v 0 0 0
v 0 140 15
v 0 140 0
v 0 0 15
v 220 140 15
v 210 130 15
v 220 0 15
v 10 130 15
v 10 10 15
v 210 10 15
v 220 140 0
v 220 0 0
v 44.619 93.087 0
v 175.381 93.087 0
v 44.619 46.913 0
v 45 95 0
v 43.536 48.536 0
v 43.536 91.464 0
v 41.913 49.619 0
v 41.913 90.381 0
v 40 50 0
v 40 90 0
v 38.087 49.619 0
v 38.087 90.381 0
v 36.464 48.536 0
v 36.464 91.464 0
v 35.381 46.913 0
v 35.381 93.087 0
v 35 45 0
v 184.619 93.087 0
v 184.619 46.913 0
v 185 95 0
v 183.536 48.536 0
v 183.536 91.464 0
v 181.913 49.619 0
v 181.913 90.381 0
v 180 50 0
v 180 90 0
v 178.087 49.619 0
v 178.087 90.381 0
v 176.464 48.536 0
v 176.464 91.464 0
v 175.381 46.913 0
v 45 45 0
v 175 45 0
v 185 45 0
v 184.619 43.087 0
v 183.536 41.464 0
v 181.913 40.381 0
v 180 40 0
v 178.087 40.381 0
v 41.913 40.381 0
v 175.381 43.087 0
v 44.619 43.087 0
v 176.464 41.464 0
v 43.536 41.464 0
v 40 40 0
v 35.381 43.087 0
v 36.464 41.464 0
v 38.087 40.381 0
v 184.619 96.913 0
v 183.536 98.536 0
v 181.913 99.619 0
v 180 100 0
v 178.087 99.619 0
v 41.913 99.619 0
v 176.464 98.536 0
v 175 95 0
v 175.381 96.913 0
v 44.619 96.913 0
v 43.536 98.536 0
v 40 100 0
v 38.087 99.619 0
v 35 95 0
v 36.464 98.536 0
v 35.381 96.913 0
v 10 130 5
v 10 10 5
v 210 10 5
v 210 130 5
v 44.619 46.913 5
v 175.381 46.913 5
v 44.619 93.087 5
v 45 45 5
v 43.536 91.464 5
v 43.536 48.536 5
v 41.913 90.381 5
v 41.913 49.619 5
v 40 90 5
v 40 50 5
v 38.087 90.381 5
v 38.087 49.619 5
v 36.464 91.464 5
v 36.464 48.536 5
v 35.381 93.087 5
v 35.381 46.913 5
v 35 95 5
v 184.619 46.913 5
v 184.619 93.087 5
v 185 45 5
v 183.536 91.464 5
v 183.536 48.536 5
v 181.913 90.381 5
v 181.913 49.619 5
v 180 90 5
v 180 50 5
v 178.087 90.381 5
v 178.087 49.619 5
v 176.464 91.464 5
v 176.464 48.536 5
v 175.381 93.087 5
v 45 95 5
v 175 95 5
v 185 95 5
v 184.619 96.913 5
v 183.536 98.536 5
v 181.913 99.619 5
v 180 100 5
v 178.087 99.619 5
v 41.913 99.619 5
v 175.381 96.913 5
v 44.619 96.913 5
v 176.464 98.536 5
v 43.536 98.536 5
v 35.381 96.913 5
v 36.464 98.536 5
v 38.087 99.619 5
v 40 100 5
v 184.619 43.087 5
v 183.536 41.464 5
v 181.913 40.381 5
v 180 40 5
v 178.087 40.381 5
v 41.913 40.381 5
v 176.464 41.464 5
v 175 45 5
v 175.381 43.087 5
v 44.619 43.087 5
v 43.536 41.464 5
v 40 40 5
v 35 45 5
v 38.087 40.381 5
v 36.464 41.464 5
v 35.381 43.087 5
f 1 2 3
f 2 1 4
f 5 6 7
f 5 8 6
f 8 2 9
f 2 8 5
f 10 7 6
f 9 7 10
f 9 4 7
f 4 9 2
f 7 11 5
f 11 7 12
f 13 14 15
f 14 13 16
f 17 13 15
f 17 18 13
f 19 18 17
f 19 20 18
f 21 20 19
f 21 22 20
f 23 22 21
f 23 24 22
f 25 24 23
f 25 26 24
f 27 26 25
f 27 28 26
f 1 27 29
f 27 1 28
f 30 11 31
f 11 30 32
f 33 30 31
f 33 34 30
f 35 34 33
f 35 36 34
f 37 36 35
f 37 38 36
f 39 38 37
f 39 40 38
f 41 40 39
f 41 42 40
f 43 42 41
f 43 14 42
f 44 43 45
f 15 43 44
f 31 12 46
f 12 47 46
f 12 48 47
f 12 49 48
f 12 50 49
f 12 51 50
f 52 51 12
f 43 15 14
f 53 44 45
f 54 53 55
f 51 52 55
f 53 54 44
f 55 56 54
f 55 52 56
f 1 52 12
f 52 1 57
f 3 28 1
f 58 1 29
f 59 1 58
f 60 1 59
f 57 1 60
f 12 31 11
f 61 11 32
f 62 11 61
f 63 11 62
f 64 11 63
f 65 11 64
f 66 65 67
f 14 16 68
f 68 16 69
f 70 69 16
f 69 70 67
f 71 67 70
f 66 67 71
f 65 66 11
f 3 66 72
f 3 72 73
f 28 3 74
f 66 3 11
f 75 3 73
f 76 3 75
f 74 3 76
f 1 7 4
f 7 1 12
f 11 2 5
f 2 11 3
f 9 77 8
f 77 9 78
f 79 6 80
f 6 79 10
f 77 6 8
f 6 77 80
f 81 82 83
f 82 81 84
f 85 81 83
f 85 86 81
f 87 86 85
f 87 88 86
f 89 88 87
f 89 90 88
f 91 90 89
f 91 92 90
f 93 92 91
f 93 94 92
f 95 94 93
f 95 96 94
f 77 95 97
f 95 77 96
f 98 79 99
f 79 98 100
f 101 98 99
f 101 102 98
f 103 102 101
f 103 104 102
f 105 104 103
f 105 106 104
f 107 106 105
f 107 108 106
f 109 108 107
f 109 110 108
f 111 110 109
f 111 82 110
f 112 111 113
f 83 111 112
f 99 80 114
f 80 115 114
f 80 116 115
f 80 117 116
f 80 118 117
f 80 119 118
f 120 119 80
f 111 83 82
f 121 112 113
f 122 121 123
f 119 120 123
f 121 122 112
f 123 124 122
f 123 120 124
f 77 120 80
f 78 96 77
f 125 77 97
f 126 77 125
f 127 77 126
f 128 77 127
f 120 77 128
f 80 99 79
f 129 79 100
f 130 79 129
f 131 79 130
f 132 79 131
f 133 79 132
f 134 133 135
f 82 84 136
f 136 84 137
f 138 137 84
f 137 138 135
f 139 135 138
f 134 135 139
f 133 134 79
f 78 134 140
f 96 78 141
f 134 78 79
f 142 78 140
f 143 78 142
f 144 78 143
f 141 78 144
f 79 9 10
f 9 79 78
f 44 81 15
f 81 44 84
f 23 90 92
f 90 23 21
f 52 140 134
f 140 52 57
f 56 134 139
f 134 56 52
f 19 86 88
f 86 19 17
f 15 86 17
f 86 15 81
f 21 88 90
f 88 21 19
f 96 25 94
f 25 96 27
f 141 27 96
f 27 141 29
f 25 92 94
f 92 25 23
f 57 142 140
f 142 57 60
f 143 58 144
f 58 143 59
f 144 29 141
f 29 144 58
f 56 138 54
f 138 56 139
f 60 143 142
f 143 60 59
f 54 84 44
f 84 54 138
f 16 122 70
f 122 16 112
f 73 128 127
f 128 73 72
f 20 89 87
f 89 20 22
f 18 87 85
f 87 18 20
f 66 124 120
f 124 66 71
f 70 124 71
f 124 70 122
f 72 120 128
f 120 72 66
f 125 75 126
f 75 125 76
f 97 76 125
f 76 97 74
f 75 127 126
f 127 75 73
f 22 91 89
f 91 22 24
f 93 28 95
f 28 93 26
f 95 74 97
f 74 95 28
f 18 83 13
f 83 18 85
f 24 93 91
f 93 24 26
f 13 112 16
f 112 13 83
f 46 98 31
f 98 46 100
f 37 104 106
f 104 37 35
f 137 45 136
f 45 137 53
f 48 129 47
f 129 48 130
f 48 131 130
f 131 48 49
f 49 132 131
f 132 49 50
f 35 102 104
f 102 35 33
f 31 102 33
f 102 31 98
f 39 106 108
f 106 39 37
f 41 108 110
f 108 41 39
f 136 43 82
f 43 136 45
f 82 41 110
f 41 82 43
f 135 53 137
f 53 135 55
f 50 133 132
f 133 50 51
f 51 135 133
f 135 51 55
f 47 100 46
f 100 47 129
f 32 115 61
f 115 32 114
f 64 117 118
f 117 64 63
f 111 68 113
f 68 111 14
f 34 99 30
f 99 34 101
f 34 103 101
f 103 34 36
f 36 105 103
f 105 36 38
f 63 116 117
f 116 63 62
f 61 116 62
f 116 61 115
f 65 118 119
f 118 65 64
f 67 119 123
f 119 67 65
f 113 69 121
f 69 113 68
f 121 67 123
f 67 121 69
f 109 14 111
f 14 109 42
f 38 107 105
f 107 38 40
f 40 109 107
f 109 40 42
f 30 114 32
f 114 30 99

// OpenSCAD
// Eicher Bulldog Bauteil 2
difference() {
cube([220,140,15]);
translate([10,10,5])cube([200,120,10]);
translate([40,45,0])cylinder(5,10/2,10/2);
translate([40,95,0])cylinder(5,10/2,10/2);
translate([180,45,0])cylinder(5,10/2,10/2);
translate([180,95,0])cylinder(5,10/2,10/2);
}
